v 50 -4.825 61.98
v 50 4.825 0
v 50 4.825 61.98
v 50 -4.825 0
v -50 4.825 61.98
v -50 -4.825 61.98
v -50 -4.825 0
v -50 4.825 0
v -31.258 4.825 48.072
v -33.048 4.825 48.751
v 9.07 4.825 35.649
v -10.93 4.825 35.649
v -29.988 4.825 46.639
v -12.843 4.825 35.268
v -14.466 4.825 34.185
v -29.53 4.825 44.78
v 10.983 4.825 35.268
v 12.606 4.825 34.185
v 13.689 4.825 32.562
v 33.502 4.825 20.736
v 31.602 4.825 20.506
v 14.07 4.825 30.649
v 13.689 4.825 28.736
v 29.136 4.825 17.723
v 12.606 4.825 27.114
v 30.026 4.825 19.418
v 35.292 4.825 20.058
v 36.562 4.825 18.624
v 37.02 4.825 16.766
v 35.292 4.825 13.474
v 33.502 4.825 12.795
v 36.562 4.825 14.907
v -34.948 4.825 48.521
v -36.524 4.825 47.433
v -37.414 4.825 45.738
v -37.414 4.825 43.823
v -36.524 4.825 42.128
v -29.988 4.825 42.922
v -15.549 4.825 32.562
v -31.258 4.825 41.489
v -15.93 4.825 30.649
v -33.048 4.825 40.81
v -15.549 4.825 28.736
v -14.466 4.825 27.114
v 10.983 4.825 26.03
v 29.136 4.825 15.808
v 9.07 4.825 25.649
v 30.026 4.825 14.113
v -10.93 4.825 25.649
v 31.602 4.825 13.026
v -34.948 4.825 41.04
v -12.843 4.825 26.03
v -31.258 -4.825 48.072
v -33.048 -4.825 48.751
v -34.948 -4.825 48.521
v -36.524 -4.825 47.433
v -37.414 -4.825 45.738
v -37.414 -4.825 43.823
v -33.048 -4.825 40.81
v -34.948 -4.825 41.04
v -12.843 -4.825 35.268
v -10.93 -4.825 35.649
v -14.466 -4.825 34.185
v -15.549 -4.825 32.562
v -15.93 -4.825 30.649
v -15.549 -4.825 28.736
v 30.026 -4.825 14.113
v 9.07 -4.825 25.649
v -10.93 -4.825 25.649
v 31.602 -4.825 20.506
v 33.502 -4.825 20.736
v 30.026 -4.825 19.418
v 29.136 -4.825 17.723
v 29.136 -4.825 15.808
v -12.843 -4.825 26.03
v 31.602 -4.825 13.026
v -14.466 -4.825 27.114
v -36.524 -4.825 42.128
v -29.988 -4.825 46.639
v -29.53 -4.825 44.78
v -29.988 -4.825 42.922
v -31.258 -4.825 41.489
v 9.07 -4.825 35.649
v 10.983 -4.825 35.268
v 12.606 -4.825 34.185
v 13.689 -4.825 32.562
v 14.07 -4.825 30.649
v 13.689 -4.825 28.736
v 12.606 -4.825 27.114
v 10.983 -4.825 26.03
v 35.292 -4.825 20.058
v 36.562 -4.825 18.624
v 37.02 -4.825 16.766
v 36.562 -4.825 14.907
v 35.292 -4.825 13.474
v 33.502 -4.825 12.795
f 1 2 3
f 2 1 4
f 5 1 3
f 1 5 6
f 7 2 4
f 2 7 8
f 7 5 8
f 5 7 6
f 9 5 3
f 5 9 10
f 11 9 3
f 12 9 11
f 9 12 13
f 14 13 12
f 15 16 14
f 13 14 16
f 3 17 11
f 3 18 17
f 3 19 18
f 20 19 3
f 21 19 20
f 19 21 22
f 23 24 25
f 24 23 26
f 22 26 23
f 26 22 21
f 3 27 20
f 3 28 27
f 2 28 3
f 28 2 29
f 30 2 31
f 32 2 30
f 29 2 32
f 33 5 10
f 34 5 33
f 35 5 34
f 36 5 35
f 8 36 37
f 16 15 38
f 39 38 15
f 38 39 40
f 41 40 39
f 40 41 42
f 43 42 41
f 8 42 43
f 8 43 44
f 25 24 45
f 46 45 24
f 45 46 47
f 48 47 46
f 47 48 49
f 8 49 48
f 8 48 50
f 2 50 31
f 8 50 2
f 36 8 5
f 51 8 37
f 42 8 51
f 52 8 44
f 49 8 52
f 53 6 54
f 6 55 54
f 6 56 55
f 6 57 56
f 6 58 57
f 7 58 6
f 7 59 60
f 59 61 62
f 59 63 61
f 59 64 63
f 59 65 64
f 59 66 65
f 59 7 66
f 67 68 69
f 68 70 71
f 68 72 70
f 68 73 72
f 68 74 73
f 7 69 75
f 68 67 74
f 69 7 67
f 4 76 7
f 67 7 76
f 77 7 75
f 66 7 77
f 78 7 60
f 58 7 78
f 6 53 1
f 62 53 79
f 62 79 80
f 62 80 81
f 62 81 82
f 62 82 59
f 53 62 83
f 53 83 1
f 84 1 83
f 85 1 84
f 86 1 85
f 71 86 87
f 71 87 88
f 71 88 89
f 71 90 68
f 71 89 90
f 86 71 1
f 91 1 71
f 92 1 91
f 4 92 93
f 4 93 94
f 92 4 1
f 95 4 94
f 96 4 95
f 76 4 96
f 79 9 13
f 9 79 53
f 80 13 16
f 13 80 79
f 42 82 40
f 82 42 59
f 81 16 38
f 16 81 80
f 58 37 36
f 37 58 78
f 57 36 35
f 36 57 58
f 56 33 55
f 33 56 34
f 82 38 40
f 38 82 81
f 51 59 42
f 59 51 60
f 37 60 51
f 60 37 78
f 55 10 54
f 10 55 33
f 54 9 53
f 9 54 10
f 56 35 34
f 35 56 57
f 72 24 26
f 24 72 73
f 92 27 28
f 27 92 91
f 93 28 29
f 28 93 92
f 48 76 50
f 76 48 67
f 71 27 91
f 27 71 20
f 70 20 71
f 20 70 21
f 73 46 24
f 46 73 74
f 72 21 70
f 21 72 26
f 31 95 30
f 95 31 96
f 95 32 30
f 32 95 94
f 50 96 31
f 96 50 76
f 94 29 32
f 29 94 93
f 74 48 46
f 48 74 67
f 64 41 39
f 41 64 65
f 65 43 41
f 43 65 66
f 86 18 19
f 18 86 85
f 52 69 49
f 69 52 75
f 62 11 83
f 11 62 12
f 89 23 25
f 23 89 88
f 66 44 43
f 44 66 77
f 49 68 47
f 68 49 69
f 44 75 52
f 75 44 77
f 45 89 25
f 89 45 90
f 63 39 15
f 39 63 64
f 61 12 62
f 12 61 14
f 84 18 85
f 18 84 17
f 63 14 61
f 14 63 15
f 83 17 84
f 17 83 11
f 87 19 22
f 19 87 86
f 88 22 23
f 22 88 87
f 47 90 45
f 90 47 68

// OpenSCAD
/* doodle-meta {"version":1,"parameters":{"width":{"label":"Overall width","description":"Changes the body width","unit":"mm","feature":"body_width"},"height":{"label":"Overall height","description":"Changes the body height","unit":"mm","feature":"body_height"},"thickness":{"label":"Plate thickness","description":"Changes the plate thickness","unit":"mm","feature":"body_thickness"},"hole_diameter":{"label":"Hole diameter","description":"Changes the diameter of the mounting holes","unit":"mm","feature":"holes"},"slot_width":{"label":"Slot width","description":"Changes the width of the center slot","unit":"mm","feature":"slot"},"slot_height":{"label":"Slot height","description":"Changes the height of the center slot","unit":"mm","feature":"slot"}},"features":{"body_width":{"kind":"dimension","axis":"x","label":"Overall width"},"body_height":{"kind":"dimension","axis":"z","label":"Overall height"},"body_thickness":{"kind":"dimension","axis":"y","label":"Plate thickness"},"holes":{"kind":"region","label":"Mounting Holes","min":[{"parameter":"hole_x_left","scale":1,"offset":-10},{"parameter":"thickness","scale":0,"offset":-1},{"parameter":"hole_z_left","scale":1,"offset":-10}],"max":[{"parameter":"hole_x_right","scale":1,"offset":10},{"parameter":"thickness","scale":1,"offset":1},{"parameter":"hole_z_right","scale":1,"offset":10}]},"slot":{"kind":"region","label":"Center Slot","min":[{"parameter":"width","scale":0.5,"offset":-15},{"parameter":"thickness","scale":0,"offset":-1},{"parameter":"height","scale":0.5,"offset":-5}],"max":[{"parameter":"width","scale":0.5,"offset":15},{"parameter":"thickness","scale":1,"offset":1},{"parameter":"height","scale":0.5,"offset":5}]}}} */

// Parameters
width = 100.0;
height = 61.98;
thickness = 9.65;
hole_diameter = 8.0;
slot_width = 30.0;
slot_height = 10.0;

// Derived positions based on measured view geometry
// Front view mapping: X = u * width, Z = (1-v) * height
// Hole Left: center u=0.1647, v=0.2775
hole_x_left = 0.1647 * width;
hole_z_left = (1.0 - 0.2775) * height;

// Hole Right: center u=0.8302, v=0.7295
hole_x_right = 0.8302 * width;
hole_z_right = (1.0 - 0.7295) * height;

// Slot center: u=0.4907, v=0.5055
slot_x = 0.4907 * width;
slot_z = (1.0 - 0.5055) * height;

// Epsilon for CSG
eps = 0.01;

module plate_body() {
    difference() {
        // Main Plate
        cube([width, thickness, height], center=true);
        
        // Left Hole
        translate([hole_x_left - width/2, 0, hole_z_left - height/2]) {
            rotate([90, 0, 0]) {
                cylinder(d=hole_diameter, h=thickness + 2*eps, center=true);
            }
        }
        
        // Right Hole
        translate([hole_x_right - width/2, 0, hole_z_right - height/2]) {
            rotate([90, 0, 0]) {
                cylinder(d=hole_diameter, h=thickness + 2*eps, center=true);
            }
        }
        
        // Center Slot
        // Slot is a rounded rectangle (stadium) in XZ plane, cut along Y
        // Width (X) = slot_width, Height (Z) = slot_height
        // Radius = slot_height / 2
        translate([slot_x - width/2, 0, slot_z - height/2]) {
            // Create a stadium shape cutter
            // Two cylinders and a cube connecting them
            // Or use a hull of two cylinders
            hull() {
                translate([-slot_width/2 + slot_height/2, 0, 0]) {
                    rotate([90, 0, 0]) {
                        cylinder(d=slot_height, h=thickness + 2*eps, center=true);
                    }
                }
                translate([slot_width/2 - slot_height/2, 0, 0]) {
                    rotate([90, 0, 0]) {
                        cylinder(d=slot_height, h=thickness + 2*eps, center=true);
                    }
                }
            }
        }
    }
}

// Position the plate so it sits on the build plate (Z=0 is bottom)
// The cube was centered, so we need to shift it up by height/2
translate([0, 0, height/2]) {
    plate_body();
}
